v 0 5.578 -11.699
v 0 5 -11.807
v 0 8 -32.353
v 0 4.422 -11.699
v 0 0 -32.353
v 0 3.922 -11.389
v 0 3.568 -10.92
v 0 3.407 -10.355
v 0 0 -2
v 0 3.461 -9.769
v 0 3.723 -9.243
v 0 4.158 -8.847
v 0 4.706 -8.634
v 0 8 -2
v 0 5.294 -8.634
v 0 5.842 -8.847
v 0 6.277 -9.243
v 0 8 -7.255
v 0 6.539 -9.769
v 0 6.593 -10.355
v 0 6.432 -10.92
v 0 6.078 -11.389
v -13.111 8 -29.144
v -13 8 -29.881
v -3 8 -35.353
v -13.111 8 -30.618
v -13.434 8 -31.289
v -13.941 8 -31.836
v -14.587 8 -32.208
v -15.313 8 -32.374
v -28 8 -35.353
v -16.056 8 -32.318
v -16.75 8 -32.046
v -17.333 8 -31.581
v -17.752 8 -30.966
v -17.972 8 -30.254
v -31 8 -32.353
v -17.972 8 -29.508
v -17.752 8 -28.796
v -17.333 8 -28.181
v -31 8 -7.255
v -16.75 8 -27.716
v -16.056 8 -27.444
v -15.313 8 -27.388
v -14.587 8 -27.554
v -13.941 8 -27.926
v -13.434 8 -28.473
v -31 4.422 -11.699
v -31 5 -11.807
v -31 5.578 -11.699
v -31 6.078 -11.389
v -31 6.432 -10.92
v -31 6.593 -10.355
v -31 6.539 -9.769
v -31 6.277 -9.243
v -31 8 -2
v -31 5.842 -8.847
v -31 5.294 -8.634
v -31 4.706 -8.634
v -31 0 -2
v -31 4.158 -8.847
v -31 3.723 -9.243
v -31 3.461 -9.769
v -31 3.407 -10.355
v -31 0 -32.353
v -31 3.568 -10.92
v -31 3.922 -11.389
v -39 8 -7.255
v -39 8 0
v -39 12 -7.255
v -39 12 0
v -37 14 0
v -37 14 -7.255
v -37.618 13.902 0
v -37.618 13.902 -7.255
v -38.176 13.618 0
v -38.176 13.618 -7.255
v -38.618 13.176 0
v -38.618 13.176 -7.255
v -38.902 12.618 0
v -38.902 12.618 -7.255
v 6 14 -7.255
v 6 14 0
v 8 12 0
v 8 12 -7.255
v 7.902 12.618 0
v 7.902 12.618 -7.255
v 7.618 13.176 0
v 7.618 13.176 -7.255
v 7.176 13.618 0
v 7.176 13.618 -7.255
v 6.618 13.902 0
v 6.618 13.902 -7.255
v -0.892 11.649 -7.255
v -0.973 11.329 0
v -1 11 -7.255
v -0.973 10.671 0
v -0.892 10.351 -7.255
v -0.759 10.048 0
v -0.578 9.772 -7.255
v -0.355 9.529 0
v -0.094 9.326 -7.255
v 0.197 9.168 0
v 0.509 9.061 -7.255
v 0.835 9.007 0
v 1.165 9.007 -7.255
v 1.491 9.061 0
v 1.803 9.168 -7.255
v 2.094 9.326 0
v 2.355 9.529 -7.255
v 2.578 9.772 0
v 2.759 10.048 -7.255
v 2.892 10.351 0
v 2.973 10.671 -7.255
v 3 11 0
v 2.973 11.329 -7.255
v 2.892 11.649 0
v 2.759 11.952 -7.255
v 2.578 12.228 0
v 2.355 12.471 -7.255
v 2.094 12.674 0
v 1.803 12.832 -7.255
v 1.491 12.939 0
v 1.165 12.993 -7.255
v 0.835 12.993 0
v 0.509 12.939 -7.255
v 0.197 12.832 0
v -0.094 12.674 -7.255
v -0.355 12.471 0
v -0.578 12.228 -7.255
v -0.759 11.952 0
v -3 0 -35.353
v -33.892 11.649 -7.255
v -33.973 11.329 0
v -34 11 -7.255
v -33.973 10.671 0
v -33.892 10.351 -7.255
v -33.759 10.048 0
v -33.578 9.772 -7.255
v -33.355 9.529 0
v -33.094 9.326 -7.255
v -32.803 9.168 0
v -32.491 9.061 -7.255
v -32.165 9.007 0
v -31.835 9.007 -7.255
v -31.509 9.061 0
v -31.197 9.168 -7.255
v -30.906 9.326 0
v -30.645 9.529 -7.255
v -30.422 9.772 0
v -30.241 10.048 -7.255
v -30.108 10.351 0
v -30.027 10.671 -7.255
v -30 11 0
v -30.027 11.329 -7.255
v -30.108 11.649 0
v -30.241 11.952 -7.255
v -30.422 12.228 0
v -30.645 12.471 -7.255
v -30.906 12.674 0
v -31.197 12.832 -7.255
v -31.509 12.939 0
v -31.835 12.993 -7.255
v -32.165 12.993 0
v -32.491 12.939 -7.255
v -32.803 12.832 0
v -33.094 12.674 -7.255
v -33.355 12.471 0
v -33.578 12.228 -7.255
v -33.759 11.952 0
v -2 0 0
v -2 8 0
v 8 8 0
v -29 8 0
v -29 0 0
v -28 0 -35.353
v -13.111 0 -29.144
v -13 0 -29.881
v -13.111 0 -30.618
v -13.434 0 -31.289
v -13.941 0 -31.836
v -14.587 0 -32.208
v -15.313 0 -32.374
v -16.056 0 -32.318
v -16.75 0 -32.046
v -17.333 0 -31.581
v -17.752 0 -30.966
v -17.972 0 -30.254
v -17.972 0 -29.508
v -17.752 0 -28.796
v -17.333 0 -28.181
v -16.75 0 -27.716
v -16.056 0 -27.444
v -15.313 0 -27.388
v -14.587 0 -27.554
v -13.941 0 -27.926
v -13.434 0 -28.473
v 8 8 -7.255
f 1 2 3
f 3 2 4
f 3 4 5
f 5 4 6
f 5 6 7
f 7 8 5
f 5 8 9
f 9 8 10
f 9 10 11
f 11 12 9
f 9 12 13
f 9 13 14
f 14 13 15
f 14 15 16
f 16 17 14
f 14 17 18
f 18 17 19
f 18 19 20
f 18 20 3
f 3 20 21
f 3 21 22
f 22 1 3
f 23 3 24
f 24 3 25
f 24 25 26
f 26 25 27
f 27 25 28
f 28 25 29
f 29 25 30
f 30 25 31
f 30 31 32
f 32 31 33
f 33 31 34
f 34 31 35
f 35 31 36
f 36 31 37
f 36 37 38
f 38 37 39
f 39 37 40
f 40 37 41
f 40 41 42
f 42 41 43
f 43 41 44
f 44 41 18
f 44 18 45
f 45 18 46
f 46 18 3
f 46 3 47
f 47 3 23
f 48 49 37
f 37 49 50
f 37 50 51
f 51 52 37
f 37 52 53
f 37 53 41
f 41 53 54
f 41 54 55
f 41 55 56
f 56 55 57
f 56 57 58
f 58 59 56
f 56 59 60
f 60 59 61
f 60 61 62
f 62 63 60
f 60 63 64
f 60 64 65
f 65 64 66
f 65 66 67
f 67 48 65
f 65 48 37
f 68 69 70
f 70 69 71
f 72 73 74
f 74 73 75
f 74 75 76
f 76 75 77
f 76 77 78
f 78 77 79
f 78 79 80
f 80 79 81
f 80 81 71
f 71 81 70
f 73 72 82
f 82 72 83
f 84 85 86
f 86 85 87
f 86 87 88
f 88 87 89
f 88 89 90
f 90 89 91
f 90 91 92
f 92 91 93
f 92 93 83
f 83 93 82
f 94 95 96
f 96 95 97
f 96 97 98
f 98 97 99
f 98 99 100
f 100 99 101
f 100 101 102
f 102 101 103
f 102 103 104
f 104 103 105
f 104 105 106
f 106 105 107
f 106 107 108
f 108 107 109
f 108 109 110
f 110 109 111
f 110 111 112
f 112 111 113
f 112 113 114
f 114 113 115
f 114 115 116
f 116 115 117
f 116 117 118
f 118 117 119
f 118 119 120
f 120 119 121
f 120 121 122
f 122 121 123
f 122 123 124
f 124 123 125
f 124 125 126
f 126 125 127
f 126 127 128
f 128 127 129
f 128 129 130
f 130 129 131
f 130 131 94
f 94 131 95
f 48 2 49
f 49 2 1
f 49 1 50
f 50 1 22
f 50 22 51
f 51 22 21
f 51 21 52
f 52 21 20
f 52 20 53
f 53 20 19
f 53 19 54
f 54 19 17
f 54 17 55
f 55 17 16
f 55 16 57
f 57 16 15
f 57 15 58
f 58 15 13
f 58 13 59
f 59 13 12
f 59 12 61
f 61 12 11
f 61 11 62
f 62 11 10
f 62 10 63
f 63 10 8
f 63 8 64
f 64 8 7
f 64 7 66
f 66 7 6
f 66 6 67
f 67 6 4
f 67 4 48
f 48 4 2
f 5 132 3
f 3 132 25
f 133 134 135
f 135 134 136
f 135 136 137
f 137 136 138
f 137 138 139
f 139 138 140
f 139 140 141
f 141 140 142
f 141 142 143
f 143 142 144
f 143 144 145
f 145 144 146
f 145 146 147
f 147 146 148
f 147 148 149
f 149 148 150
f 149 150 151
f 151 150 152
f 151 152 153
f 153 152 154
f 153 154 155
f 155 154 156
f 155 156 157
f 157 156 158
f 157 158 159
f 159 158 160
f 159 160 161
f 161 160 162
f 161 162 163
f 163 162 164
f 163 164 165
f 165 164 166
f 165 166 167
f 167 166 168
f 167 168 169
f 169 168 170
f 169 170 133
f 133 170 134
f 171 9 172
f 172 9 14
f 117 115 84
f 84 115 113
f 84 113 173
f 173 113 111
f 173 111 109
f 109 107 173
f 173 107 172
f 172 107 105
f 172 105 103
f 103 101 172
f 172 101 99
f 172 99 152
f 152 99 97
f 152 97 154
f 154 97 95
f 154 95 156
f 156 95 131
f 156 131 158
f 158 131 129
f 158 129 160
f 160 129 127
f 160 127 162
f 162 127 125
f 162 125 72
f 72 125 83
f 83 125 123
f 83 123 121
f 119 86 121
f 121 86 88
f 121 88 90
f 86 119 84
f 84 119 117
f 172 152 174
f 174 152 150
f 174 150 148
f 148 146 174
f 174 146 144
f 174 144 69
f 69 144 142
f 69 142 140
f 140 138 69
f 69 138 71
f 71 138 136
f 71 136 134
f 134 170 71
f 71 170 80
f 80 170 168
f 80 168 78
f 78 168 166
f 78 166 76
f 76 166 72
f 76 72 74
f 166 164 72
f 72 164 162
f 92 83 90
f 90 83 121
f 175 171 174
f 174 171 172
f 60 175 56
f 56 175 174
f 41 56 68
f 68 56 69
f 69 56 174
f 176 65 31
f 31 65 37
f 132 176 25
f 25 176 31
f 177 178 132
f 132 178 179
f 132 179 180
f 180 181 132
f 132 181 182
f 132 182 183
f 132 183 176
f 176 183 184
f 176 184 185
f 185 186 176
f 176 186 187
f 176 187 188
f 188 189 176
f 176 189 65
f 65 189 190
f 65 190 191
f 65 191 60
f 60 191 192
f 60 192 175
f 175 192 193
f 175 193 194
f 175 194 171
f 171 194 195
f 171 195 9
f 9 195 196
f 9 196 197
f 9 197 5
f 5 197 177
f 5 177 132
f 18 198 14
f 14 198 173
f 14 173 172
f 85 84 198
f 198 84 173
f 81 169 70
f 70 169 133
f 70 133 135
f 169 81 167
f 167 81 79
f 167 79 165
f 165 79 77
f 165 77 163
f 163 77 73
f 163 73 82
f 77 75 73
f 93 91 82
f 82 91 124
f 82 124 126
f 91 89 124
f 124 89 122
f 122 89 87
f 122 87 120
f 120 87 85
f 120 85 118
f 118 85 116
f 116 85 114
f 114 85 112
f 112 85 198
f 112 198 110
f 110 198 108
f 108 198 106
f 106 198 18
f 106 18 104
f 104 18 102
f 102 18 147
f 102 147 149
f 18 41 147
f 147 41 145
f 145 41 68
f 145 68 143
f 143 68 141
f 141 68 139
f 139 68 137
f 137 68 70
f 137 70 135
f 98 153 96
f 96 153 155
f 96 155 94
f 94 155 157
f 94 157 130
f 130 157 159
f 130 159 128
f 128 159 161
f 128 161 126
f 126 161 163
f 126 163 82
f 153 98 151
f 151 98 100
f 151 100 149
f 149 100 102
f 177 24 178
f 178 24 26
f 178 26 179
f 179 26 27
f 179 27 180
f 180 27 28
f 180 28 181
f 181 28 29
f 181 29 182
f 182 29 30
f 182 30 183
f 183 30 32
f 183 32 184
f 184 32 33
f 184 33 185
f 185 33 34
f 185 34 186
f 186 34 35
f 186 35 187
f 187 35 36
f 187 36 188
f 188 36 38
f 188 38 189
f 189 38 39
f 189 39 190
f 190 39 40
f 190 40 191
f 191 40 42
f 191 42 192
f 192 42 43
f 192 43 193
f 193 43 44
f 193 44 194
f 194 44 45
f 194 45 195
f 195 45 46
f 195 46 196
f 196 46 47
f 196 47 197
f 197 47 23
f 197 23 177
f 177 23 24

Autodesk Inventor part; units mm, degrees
ref_plane "YZ Plane" through (0, 0, 0) normal (1, 0, 0) x (0, 1, 0)
ref_plane "XZ Plane" through (0, 0, 0) normal (0, 1, 0) x (-1, 0, 0)
ref_plane "XY Plane" through (0, 0, 0) normal (0, 0, 1) x (1, 0, 0)
sketch "Sketch1" plane through (0, 0, 0) normal (0, 1, 0) x (-1, 0, 0)
  line L0 (29, 0) -> (31, -2)
  line L1 (28, -35.353) -> (31, -32.353)
  line L2 (0, -32.353) -> (3, -35.353)
  line L3 (0, -2) -> (2, 0)
  line L4 (31, -2) -> (31, -32.353)
  line L5 (28, -35.353) -> (3, -35.353)
  line L6 (0, -32.353) -> (0, -2)
  line L7 (2, 0) -> (29, 0)
  point P0 (0, 0)
  dimension "d5" = 2
  dimension "d6" = 2
extrude "Extrusion1" add sketch "Sketch1" along normal blind 8
sketch "Sketch2" plane through (0, 0, -2) normal (1, 0, 0) x (0, 0, -1)
  line L0 (0, 0) -> (0, 8) projected
  line L1 (0, 8) -> (8.207, 8)
  line L2 (30.353, 8) -> (0, 8) projected
  line L3 (8.207, 8) -> (8.207, 5)
  circle A0 centre (8.207, 5) radius 1.6
  point P0 (-2, 0)
  dimension "d13" = 8.207
  dimension "d14" = 3
  dimension "d15" = 3.2
extrude "Extrusion2" cut sketch "Sketch2" against normal blind 31
sketch "Sketch3" plane through (0, 8, 0) normal (0, 1, 0) x (1, 0, 0)
  line L0 (-31, 2) -> (-29, 0) projected
  line L1 (-29, 0) -> (-39, 0)
  line L2 (-2, 0) -> (0, 2) projected
  line L3 (-2, 0) -> (8, 0)
  line L4 (-39, 0) -> (-39, 14.511)
  line L5 (8, 0) -> (8, 14.511)
  line L6 (8, 14.511) -> (-39, 14.511)
  line L7 (-29, 0) -> (-2, 0)
  point P0 (0, 0)
  dimension "d18" = 10
  dimension "d19" = 10
  dimension "d20" = 14.511
  dimension "d21" = 14.511
extrude "Extrusion3" add sketch "Sketch3" along normal blind 6
sketch "Sketch4" plane through (-29, 0, 0) normal (0, 0, 1) x (1, 0, 0)
  line L0 (-10, 14) -> (37, 14) projected
  line L1 (37, 14) -> (35, 14)
  line L2 (35, 14) -> (35, 12)
  circle A0 centre (35, 12) radius 2
  line L3 (-10, 8) -> (-10, 14) projected
  line L4 (-10, 14) -> (-8, 14)
  line L5 (-8, 14) -> (-8, 12)
  circle A1 centre (-8, 12) radius 2
  line L6 (-10, 14) -> (-10, 12)
  line L7 (37, 14) -> (37, 12)
  line L8 (37, 8) -> (37, 14) projected
  point P0 (29, 0)
  point P1 (-8, 14)
  dimension "d26" = 4
  dimension "d29" = 4
  dimension "d24" = 2
  dimension "d25" = 2
  dimension "d27" = 2
  dimension "d28" = 2
extrude "Extrusion4" cut sketch "Sketch4" against normal blind 14.511 contours L0 L7 A0 | L0 A1 L3
sketch "Sketch5" plane through (-29, 0, 0) normal (0, 0, 1) x (1, 0, 0)
  arc A0 (37, 12) -> (35, 14) centre (35, 12) ccw projected
  line L0 (35, 14) -> (30, 14)
  line L1 (35, 14) -> (-8, 14) projected
  line L2 (30, 14) -> (30, 11)
  line L3 (-8, 14) -> (-3, 14)
  line L4 (-3, 14) -> (-3, 11)
  circle A1 centre (-3, 11) radius 2
  circle A2 centre (30, 11) radius 2
  point P0 (29, 0)
  dimension "d32" = 5
  dimension "d33" = 3
  dimension "d34" = 5
  dimension "d35" = 3
  dimension "d36" = 4
  dimension "d37" = 4
extrude "Extrusion5" cut sketch "Sketch5" against normal blind 14.511
sketch "Sketch6" plane through (0, 8, 0) normal (0, 1, 0) x (1, 0, 0)
  line L0 (-28, 35.353) -> (-31, 32.353) projected
  line L1 (-28, 35.353) -> (-28, 24.409)
  line L2 (0, 32.353) -> (-3, 35.353) projected
  line L3 (-3, 35.353) -> (-3, 24.409)
  line L4 (-3, 24.409) -> (-28, 24.409)
  line L5 (-28, 35.353) -> (-3, 35.353)
  line L6 (-3, 35.353) -> (-28, 35.353) projected
  line L7 (-28, 35.353) -> (-15.5, 35.353)
  line L8 (-15.5, 35.353) -> (-15.5, 29.881)
  circle A0 centre (-15.5, 29.881) radius 2.5
  point P0 (0, 0)
  dimension "d40" = 10.944
  dimension "d41" = 10.944
  dimension "d42" = 12.5
  dimension "d43" = 5.472
  dimension "d44" = 5
extrude "Extrusion6" cut sketch "Sketch6" against normal blind 8 contours A0
sketch "Sketch7" plane through (8, 8, -14.511) normal (0, 0, -1) x (-1, 0, 0)
  line L0 (0, 0) -> (8, 0) projected
  line L1 (47, 0) -> (47, 4) projected
  line L2 (0, 0) -> (47, 0)
  line L3 (47, 0) -> (47, 6)
  line L4 (47, 6) -> (0, 6)
  line L5 (0, 6) -> (0, 0)
  point P0 (8, -8)
  dimension "d47" = 6
  dimension "d48" = 47
extrude "Extrusion7" cut sketch "Sketch7" against normal blind 7.2555
properties part number "camera_holder"
